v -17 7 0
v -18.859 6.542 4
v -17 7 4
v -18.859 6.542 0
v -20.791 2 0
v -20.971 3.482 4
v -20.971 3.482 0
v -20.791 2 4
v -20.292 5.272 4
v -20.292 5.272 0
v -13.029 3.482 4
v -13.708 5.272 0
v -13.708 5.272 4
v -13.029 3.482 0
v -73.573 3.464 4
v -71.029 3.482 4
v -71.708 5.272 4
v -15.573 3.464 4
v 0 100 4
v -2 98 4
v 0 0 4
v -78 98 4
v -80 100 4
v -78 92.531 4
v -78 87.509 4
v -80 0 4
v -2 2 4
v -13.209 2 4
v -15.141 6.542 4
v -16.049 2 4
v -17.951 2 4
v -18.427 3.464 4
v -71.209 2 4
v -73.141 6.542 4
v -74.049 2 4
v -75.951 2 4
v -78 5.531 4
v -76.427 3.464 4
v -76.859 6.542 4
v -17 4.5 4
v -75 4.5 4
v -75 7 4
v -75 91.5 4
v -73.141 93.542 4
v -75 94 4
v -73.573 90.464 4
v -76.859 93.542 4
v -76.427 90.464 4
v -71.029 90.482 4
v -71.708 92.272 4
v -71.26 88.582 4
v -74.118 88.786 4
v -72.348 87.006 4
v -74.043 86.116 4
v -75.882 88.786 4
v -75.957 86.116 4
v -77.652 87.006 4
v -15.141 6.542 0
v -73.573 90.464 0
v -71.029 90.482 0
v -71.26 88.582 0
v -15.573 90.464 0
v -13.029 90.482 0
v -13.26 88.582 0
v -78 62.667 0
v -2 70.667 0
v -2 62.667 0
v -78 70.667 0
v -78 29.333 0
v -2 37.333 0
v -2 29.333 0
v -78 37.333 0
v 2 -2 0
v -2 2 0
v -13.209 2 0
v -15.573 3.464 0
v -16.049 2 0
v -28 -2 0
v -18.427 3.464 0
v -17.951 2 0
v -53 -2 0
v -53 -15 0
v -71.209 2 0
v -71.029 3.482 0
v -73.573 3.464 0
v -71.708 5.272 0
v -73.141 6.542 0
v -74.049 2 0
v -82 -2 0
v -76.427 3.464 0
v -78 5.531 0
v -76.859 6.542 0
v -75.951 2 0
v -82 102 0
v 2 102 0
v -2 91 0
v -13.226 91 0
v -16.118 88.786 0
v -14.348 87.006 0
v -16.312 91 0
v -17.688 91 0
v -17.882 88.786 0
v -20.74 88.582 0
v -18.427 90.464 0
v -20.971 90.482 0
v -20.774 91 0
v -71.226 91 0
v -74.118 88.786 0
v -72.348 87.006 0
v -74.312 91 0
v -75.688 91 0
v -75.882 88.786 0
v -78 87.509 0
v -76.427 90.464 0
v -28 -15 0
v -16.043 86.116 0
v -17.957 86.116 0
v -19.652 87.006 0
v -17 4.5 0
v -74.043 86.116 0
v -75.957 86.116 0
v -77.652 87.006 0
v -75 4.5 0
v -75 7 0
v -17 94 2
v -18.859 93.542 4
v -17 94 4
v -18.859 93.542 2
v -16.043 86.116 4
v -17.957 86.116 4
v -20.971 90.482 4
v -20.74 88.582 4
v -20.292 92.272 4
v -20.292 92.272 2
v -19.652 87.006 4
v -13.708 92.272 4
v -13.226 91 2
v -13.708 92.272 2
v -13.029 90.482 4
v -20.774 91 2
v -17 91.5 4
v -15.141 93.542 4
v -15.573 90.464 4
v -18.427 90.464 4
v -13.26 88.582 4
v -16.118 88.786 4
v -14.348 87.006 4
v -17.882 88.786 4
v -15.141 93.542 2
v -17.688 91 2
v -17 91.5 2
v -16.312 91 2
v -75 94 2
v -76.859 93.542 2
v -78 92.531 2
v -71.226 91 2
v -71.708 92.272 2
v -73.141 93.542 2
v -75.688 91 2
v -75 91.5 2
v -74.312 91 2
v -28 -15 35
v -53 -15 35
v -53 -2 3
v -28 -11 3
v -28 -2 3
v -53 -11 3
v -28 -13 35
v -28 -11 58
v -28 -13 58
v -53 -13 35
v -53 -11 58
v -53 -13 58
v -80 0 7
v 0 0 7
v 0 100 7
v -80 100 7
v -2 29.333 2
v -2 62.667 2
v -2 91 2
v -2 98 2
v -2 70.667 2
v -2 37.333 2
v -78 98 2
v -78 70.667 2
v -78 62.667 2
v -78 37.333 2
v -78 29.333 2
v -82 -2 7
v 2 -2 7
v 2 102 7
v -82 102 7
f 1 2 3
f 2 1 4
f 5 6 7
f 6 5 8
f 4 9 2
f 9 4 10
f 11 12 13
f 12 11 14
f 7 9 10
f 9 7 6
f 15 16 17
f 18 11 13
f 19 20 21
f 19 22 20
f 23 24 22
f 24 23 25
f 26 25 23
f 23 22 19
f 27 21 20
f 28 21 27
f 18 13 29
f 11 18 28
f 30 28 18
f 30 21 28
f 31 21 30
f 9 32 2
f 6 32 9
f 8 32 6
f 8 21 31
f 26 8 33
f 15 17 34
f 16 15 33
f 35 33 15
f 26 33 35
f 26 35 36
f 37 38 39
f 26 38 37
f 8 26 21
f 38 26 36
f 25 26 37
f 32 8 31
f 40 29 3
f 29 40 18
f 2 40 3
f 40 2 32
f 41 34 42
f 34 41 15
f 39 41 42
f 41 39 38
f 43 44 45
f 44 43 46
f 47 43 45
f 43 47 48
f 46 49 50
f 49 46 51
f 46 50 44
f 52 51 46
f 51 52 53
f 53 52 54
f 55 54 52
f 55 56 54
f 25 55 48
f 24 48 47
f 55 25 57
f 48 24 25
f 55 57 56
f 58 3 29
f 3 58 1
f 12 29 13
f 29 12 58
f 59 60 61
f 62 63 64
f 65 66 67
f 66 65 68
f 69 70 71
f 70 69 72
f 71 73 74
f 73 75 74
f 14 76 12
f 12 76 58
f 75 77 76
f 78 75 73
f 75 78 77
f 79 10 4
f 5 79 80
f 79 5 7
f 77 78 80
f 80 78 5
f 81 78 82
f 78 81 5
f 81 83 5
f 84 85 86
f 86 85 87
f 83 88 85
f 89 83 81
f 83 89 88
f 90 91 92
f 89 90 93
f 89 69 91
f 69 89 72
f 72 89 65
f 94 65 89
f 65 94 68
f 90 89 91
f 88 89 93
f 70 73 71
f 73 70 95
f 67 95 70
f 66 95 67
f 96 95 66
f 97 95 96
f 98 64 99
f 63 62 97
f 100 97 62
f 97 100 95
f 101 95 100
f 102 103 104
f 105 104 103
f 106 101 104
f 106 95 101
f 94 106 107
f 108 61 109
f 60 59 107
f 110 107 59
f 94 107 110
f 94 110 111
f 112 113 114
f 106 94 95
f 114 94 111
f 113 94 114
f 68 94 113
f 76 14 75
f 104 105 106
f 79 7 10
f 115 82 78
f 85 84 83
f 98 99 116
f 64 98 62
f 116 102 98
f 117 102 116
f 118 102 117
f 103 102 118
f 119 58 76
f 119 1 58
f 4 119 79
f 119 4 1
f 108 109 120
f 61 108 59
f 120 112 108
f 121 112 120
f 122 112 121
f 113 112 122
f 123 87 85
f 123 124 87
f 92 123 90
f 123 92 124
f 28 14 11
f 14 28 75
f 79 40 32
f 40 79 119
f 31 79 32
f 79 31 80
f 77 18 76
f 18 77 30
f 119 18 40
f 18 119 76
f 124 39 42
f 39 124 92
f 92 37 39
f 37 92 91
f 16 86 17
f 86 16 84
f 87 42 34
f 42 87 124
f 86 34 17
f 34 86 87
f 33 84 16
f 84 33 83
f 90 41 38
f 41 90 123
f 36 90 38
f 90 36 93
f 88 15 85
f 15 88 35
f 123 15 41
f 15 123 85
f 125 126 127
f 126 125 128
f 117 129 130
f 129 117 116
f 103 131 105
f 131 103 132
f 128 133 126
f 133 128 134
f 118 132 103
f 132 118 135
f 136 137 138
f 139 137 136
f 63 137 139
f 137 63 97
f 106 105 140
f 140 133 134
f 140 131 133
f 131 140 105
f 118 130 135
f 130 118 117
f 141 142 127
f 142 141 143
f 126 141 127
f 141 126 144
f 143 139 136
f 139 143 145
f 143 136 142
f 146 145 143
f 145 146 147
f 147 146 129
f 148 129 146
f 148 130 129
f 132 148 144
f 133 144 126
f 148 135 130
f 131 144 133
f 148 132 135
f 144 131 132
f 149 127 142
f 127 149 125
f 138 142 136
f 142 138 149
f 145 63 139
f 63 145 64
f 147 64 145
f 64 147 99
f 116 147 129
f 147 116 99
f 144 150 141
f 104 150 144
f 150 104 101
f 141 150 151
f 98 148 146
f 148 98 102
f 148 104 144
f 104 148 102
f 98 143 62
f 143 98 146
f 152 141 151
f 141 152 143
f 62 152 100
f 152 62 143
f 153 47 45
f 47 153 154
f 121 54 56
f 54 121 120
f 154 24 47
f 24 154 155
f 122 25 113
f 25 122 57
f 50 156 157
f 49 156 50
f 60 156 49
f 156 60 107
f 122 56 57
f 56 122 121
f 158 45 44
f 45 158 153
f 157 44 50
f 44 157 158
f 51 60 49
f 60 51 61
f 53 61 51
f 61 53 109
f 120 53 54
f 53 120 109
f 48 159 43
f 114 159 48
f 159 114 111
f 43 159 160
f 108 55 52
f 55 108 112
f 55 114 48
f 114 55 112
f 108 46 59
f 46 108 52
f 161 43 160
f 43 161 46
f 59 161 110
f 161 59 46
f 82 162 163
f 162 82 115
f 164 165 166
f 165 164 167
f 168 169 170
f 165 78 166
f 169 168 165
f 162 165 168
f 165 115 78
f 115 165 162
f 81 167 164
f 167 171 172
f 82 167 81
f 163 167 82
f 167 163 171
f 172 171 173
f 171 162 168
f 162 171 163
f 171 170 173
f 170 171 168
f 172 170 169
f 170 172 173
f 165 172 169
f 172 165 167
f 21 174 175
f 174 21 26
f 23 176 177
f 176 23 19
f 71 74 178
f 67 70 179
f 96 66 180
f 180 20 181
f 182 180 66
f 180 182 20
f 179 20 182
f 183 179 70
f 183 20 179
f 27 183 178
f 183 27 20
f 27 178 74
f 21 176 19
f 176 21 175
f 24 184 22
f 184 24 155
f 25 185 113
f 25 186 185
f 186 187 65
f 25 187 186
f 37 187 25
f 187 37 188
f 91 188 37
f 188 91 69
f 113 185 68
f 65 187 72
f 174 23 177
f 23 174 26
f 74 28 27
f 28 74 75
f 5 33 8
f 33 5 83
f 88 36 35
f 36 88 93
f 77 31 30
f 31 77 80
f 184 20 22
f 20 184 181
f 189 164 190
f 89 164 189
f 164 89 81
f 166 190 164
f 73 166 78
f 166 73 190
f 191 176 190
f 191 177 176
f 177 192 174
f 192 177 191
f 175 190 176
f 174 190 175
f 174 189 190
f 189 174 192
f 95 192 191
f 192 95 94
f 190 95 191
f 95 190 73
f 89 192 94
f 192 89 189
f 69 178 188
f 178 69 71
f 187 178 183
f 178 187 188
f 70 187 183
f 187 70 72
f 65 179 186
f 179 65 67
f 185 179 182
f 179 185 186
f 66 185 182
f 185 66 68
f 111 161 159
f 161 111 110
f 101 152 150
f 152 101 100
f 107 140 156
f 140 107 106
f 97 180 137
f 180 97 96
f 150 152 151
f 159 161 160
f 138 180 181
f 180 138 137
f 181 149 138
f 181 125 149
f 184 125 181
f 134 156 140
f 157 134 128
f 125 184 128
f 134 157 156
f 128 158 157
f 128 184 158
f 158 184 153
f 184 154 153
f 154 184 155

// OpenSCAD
// Spacer for toilet-tank
// 202011212


w = 100;
d = 80;
h = 4;

t = 2;

rotate([0,0,90]) top();

module spacer(h){
    difference() {
        cylinder(h,4,4);
        cylinder(h+2,1.5,1.5);
    }
}

module top()
{

    //inner
    translate([0,0,0]) cube([w,t,h]);
    translate([0,d-t,0]) cube([w,t,h]);
    translate([0,0,0]) cube([t,d,h]);
    translate([w-t,0,0]) cube([t,d,h]);
    
    //outer
    translate([-t,-t,0]) cube([w+2*t,t,h+3]);
    //translate([-t,-t,0]) cube([w+2*t,t,h+1.5]);
    translate([0,d,0]) cube([w+t,t,h+3]);
    translate([-t,0,0]) cube([t,d+t,h+3]);
    translate([w,0,0]) cube([t,d+t,h+3]);


    //screw spacer 
    translate([3,17,0]) spacer(h);
    translate([3,75,0]) spacer(h);
    translate([90,17,0]) spacer(h);
    translate([90,75,0]) spacer(h);
    
    // baseplate
    translate([w/3-4,0,0]) cube([8,d,t]);
    translate([(w/3*2)-4,0,0]) cube([8,d,t]);
    translate([91,0,0]) cube([10,d,t]);
    
    //camera holder
    translate([-15,d/2-12,0]) {
        cube([15,25,t+1]);
        cube([t,25,35]);
        translate([t,0,0]) cube([t,25,58]);
    }
}
